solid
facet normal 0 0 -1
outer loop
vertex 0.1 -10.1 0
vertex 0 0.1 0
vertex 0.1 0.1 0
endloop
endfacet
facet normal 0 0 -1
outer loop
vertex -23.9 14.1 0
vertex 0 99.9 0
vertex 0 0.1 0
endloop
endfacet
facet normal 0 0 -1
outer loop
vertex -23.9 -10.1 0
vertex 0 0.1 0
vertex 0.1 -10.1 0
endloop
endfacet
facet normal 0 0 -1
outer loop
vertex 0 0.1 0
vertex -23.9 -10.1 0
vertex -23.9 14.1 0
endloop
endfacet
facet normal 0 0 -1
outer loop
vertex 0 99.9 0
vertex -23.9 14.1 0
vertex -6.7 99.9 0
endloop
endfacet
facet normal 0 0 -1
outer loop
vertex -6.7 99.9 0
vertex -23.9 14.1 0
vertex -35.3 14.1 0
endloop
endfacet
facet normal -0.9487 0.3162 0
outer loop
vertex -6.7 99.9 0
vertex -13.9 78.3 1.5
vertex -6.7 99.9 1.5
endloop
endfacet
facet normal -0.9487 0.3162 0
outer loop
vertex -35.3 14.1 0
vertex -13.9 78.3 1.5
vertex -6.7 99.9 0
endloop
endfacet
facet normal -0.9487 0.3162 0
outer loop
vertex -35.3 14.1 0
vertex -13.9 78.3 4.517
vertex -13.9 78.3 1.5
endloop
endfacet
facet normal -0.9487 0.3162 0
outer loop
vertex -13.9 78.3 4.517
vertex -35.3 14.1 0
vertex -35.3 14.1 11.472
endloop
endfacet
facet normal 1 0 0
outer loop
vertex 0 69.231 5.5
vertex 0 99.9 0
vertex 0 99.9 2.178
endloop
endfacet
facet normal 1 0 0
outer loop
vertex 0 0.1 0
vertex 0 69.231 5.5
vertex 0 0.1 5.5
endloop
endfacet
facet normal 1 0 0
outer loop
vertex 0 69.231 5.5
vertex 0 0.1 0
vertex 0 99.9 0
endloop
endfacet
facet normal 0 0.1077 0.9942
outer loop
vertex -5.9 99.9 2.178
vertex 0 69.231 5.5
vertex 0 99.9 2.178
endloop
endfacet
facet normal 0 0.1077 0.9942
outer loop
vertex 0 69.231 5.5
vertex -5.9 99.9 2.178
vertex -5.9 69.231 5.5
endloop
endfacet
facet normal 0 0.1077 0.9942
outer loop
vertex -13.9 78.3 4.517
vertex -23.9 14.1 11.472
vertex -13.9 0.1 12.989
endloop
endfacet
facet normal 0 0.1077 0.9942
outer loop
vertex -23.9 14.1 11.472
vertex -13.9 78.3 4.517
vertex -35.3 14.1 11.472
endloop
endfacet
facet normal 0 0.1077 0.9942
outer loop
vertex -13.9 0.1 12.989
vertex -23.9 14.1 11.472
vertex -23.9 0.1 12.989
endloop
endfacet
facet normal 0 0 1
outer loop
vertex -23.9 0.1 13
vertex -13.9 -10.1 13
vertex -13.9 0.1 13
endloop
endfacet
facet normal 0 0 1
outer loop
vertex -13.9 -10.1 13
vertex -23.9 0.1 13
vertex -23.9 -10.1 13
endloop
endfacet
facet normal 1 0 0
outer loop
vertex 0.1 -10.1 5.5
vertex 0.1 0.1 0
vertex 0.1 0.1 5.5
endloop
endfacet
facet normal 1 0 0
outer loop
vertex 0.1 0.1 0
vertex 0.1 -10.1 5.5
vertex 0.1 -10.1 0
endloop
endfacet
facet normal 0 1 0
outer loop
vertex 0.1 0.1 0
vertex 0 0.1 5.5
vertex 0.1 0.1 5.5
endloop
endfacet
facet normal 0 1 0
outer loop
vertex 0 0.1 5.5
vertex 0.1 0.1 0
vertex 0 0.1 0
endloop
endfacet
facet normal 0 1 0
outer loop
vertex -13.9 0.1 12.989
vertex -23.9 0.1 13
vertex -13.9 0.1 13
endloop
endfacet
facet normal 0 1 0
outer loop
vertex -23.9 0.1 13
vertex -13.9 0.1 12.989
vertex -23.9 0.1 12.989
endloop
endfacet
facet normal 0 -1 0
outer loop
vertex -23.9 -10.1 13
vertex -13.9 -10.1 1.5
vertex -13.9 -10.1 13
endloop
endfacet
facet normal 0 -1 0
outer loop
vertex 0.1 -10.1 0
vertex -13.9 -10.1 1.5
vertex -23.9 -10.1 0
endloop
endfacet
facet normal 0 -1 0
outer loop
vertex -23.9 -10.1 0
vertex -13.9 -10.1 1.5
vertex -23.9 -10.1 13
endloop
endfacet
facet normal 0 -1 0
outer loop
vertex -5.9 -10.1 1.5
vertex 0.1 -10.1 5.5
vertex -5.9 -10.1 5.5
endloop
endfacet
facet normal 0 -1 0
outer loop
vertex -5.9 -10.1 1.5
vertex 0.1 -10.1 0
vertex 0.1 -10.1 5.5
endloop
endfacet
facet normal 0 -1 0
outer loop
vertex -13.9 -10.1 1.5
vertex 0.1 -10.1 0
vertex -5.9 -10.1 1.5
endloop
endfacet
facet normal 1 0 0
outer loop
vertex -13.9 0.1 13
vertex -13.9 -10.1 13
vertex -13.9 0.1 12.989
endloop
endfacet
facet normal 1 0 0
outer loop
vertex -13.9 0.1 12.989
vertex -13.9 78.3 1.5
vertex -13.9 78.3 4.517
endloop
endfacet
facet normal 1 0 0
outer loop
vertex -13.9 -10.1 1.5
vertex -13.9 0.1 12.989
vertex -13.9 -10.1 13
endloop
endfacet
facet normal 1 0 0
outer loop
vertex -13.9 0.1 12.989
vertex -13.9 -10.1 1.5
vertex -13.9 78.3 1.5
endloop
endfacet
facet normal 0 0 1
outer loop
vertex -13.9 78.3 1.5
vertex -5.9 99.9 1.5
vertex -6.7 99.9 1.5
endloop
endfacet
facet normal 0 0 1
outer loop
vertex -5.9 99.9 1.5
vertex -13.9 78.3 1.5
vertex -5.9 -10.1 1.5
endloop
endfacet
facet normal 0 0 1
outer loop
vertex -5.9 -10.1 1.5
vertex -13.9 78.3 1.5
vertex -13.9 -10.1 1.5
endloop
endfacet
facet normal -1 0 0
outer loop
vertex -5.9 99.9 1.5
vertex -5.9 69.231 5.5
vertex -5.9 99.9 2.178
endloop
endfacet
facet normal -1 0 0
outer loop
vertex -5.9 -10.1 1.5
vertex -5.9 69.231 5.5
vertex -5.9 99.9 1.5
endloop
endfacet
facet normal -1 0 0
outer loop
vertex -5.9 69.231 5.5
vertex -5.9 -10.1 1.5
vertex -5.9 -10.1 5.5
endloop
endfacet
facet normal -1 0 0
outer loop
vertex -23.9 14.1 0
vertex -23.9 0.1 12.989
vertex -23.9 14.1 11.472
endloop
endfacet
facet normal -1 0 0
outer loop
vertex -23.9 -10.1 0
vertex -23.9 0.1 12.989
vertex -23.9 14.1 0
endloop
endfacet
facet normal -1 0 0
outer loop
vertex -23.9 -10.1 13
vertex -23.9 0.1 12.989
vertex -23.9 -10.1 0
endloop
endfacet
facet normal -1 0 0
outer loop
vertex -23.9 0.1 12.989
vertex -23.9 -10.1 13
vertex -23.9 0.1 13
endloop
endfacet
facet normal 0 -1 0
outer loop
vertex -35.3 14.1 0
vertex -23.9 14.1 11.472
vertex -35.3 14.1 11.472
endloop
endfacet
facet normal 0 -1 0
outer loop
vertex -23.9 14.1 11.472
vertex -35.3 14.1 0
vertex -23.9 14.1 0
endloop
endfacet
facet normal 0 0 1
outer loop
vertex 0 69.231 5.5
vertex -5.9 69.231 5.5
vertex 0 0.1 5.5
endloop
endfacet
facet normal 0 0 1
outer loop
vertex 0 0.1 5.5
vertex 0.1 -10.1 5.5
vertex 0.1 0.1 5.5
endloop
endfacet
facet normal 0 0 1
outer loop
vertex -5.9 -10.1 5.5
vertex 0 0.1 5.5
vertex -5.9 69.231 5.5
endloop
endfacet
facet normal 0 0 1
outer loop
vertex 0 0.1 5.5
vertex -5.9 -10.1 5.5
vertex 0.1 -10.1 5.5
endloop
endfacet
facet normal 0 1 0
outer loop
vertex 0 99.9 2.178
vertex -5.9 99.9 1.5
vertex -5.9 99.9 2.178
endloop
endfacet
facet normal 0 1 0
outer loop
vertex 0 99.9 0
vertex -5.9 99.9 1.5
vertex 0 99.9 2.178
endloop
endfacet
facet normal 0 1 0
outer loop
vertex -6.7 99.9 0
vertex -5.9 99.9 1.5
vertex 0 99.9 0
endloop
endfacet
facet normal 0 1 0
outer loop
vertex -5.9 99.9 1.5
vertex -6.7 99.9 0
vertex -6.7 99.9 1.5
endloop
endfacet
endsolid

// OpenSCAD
// =====================================================================
//  Korek narożny pod drzwi prysznicowe – bryła + 2 regulowane wycięcia
//  Układ: A = (0,0) kąt prosty, AB wzdłuż X, AC wzdłuż Y, Z w górę
// =====================================================================

// ---------------- BRYŁA ----------------
a = 40;   // długość krawędzi AB (oś X) [mm]
b = 120;   // długość krawędzi AC (oś Y) [mm]
H = 13;    // wysokość nad krawędzią AB [mm]
g = 10;   // dlugosc korka

// ---------------- PODGLĄD ----------------
pokaz_wyciecia = true;  // true = wycięcia podświetlone na różowo w podglądzie (F5)
                        // w renderze (F6) i eksporcie STL podświetlenie znika
luz = 0.2;              // tolerancja dodawana do szerokości i długości wycięć [mm]

// ---------------- WYCIĘCIE 1: szyba wchodząca od góry ----------------
w1_wlaczone = true;
w1_poz   = [6, -1-g, 1.5];      // [x, y, z] dolnego narożnika wycięcia
                            //   x = odległość od krawędzi AC
                            //   z = dno szczeliny (H - z = głębokość wejścia szyby)
w1_wym   = [7.8, b + 2+g, 20];  // [grubość szyby, długość, wysokość]
                            //   długość i wysokość celowo "na zapas" poza bryłę
w1_obrot = 0;               // obrót wokół osi Z względem narożnika [°]

// ---------------- WYCIĘCIE 2: od krawędzi AB ----------------
// Wcięcie typu "U" wchodzące od krawędzi AB (y = 0) w głąb bryły.
w2_wlaczone = true;
w2_poz   = [24, -1-g, -1];    // [x, y, z] dolnego narożnika wycięcia
                            //   y = -1, żeby wycięcie wychodziło poza krawędź
w2_wym   = [20, 15+g, H + 2];   // [szerokość, głębokość w bryłę + 1, wysokość]
                            //   wysokość H+2 = przelotowo; zmniejsz dla wcięcia częściowego
w2_obrot = 0;               // obrót wokół osi Z względem narożnika [°]

// -- wyciecie 3 na koło
w3_wlaczone = true;
w3_poz   = [0, 0-g, 5.5];      // [x, y, z] dolnego narożnika wycięcia
                            //   x = odległość od krawędzi AC
                            //   z = dno szczeliny (H - z = głębokość wejścia szyby)
w3_wym   = [7.8, b + 2+g, 20];  // [grubość szyby, długość, wysokość]
                            //   długość i wysokość celowo "na zapas" poza bryłę
w3_obrot = 0;               // obrót wokół osi Z względem narożnika [°]


// w4 - sciecie z przodu
w4_wlaczone = true;
w4_poz   = [0, b-20, -1];    // [x, y, z] dolnego narożnika wycięcia
                            //   y = -1, żeby wycięcie wychodziło poza krawędź
w4_wym   = [20, 20, H + 2];   // [szerokość, głębokość w bryłę + 1, wysokość]
                            //   wysokość H+2 = przelotowo; zmniejsz dla wcięcia częściowego
w4_obrot = 0;               // obrót wokół osi Z względem narożnika [°]


// ---------------- NADLOZENIA ----------------

// n1 - wydluzenie do srodka wneki
n1_wlaczone = true;
n1_poz   = [0, 0-g, 0];      // [x, y, z] dolnego narożnika wycięcia
                            //   x = odległość od krawędzi AC
                            //   z = dno szczeliny (H - z = głębokość wejścia szyby)
n1_wym   = [a, g, H];  // [grubość szyby, długość, wysokość]
                            //   długość i wysokość celowo "na zapas" poza bryłę
n1_obrot = 0;               // obrót wokół osi Z względem narożnika [°]

// =====================================================================

module bryla() {
    polyhedron(
        points = [[0,0,0], [a,0,0], [0,b,0], [0,0,H], [a,0,H]],
        faces  = [[0,1,2], [0,3,4,1], [0,2,3], [1,4,2], [3,2,4]]
    );
}

// Prostopadłościan powiększony o luz w X i Y (symetrycznie), bez zmiany Z
module wyciecie(poz, wym, obrot) {
    translate(poz)
        rotate([0, 0, obrot])
            translate([-luz/2, -luz/2, 0])
                cube(wym + [luz, luz, 0]);
}

module wyciecia() {
    if (w1_wlaczone) wyciecie(w1_poz, w1_wym, w1_obrot);
    if (w2_wlaczone) wyciecie(w2_poz, w2_wym, w2_obrot);
    if (w3_wlaczone) wyciecie(w3_poz, w3_wym, w3_obrot);
    if (w4_wlaczone) wyciecie(w4_poz, w4_wym, w4_obrot);
}

// ---------------- ODBICIE LUSTRZANE ----------------
lustro     = true;      // true = odbij całość (bryłę razem z wycięciami)
lustro_os  = [1, 0, 0]; // [1,0,0] = lewo-prawo (odbicie względem płaszczyzny YZ)
                        // [0,1,0] = przód-tył (względem płaszczyzny XZ)

module calosc() {
    difference() {
        union() {
            bryla();
            if (n1_wlaczone) wyciecie(n1_poz, n1_wym, n1_obrot);
        }
        if (pokaz_wyciecia) #wyciecia();
        else                 wyciecia();
    }
}

if (lustro) mirror(lustro_os) calosc();
else        calosc();
